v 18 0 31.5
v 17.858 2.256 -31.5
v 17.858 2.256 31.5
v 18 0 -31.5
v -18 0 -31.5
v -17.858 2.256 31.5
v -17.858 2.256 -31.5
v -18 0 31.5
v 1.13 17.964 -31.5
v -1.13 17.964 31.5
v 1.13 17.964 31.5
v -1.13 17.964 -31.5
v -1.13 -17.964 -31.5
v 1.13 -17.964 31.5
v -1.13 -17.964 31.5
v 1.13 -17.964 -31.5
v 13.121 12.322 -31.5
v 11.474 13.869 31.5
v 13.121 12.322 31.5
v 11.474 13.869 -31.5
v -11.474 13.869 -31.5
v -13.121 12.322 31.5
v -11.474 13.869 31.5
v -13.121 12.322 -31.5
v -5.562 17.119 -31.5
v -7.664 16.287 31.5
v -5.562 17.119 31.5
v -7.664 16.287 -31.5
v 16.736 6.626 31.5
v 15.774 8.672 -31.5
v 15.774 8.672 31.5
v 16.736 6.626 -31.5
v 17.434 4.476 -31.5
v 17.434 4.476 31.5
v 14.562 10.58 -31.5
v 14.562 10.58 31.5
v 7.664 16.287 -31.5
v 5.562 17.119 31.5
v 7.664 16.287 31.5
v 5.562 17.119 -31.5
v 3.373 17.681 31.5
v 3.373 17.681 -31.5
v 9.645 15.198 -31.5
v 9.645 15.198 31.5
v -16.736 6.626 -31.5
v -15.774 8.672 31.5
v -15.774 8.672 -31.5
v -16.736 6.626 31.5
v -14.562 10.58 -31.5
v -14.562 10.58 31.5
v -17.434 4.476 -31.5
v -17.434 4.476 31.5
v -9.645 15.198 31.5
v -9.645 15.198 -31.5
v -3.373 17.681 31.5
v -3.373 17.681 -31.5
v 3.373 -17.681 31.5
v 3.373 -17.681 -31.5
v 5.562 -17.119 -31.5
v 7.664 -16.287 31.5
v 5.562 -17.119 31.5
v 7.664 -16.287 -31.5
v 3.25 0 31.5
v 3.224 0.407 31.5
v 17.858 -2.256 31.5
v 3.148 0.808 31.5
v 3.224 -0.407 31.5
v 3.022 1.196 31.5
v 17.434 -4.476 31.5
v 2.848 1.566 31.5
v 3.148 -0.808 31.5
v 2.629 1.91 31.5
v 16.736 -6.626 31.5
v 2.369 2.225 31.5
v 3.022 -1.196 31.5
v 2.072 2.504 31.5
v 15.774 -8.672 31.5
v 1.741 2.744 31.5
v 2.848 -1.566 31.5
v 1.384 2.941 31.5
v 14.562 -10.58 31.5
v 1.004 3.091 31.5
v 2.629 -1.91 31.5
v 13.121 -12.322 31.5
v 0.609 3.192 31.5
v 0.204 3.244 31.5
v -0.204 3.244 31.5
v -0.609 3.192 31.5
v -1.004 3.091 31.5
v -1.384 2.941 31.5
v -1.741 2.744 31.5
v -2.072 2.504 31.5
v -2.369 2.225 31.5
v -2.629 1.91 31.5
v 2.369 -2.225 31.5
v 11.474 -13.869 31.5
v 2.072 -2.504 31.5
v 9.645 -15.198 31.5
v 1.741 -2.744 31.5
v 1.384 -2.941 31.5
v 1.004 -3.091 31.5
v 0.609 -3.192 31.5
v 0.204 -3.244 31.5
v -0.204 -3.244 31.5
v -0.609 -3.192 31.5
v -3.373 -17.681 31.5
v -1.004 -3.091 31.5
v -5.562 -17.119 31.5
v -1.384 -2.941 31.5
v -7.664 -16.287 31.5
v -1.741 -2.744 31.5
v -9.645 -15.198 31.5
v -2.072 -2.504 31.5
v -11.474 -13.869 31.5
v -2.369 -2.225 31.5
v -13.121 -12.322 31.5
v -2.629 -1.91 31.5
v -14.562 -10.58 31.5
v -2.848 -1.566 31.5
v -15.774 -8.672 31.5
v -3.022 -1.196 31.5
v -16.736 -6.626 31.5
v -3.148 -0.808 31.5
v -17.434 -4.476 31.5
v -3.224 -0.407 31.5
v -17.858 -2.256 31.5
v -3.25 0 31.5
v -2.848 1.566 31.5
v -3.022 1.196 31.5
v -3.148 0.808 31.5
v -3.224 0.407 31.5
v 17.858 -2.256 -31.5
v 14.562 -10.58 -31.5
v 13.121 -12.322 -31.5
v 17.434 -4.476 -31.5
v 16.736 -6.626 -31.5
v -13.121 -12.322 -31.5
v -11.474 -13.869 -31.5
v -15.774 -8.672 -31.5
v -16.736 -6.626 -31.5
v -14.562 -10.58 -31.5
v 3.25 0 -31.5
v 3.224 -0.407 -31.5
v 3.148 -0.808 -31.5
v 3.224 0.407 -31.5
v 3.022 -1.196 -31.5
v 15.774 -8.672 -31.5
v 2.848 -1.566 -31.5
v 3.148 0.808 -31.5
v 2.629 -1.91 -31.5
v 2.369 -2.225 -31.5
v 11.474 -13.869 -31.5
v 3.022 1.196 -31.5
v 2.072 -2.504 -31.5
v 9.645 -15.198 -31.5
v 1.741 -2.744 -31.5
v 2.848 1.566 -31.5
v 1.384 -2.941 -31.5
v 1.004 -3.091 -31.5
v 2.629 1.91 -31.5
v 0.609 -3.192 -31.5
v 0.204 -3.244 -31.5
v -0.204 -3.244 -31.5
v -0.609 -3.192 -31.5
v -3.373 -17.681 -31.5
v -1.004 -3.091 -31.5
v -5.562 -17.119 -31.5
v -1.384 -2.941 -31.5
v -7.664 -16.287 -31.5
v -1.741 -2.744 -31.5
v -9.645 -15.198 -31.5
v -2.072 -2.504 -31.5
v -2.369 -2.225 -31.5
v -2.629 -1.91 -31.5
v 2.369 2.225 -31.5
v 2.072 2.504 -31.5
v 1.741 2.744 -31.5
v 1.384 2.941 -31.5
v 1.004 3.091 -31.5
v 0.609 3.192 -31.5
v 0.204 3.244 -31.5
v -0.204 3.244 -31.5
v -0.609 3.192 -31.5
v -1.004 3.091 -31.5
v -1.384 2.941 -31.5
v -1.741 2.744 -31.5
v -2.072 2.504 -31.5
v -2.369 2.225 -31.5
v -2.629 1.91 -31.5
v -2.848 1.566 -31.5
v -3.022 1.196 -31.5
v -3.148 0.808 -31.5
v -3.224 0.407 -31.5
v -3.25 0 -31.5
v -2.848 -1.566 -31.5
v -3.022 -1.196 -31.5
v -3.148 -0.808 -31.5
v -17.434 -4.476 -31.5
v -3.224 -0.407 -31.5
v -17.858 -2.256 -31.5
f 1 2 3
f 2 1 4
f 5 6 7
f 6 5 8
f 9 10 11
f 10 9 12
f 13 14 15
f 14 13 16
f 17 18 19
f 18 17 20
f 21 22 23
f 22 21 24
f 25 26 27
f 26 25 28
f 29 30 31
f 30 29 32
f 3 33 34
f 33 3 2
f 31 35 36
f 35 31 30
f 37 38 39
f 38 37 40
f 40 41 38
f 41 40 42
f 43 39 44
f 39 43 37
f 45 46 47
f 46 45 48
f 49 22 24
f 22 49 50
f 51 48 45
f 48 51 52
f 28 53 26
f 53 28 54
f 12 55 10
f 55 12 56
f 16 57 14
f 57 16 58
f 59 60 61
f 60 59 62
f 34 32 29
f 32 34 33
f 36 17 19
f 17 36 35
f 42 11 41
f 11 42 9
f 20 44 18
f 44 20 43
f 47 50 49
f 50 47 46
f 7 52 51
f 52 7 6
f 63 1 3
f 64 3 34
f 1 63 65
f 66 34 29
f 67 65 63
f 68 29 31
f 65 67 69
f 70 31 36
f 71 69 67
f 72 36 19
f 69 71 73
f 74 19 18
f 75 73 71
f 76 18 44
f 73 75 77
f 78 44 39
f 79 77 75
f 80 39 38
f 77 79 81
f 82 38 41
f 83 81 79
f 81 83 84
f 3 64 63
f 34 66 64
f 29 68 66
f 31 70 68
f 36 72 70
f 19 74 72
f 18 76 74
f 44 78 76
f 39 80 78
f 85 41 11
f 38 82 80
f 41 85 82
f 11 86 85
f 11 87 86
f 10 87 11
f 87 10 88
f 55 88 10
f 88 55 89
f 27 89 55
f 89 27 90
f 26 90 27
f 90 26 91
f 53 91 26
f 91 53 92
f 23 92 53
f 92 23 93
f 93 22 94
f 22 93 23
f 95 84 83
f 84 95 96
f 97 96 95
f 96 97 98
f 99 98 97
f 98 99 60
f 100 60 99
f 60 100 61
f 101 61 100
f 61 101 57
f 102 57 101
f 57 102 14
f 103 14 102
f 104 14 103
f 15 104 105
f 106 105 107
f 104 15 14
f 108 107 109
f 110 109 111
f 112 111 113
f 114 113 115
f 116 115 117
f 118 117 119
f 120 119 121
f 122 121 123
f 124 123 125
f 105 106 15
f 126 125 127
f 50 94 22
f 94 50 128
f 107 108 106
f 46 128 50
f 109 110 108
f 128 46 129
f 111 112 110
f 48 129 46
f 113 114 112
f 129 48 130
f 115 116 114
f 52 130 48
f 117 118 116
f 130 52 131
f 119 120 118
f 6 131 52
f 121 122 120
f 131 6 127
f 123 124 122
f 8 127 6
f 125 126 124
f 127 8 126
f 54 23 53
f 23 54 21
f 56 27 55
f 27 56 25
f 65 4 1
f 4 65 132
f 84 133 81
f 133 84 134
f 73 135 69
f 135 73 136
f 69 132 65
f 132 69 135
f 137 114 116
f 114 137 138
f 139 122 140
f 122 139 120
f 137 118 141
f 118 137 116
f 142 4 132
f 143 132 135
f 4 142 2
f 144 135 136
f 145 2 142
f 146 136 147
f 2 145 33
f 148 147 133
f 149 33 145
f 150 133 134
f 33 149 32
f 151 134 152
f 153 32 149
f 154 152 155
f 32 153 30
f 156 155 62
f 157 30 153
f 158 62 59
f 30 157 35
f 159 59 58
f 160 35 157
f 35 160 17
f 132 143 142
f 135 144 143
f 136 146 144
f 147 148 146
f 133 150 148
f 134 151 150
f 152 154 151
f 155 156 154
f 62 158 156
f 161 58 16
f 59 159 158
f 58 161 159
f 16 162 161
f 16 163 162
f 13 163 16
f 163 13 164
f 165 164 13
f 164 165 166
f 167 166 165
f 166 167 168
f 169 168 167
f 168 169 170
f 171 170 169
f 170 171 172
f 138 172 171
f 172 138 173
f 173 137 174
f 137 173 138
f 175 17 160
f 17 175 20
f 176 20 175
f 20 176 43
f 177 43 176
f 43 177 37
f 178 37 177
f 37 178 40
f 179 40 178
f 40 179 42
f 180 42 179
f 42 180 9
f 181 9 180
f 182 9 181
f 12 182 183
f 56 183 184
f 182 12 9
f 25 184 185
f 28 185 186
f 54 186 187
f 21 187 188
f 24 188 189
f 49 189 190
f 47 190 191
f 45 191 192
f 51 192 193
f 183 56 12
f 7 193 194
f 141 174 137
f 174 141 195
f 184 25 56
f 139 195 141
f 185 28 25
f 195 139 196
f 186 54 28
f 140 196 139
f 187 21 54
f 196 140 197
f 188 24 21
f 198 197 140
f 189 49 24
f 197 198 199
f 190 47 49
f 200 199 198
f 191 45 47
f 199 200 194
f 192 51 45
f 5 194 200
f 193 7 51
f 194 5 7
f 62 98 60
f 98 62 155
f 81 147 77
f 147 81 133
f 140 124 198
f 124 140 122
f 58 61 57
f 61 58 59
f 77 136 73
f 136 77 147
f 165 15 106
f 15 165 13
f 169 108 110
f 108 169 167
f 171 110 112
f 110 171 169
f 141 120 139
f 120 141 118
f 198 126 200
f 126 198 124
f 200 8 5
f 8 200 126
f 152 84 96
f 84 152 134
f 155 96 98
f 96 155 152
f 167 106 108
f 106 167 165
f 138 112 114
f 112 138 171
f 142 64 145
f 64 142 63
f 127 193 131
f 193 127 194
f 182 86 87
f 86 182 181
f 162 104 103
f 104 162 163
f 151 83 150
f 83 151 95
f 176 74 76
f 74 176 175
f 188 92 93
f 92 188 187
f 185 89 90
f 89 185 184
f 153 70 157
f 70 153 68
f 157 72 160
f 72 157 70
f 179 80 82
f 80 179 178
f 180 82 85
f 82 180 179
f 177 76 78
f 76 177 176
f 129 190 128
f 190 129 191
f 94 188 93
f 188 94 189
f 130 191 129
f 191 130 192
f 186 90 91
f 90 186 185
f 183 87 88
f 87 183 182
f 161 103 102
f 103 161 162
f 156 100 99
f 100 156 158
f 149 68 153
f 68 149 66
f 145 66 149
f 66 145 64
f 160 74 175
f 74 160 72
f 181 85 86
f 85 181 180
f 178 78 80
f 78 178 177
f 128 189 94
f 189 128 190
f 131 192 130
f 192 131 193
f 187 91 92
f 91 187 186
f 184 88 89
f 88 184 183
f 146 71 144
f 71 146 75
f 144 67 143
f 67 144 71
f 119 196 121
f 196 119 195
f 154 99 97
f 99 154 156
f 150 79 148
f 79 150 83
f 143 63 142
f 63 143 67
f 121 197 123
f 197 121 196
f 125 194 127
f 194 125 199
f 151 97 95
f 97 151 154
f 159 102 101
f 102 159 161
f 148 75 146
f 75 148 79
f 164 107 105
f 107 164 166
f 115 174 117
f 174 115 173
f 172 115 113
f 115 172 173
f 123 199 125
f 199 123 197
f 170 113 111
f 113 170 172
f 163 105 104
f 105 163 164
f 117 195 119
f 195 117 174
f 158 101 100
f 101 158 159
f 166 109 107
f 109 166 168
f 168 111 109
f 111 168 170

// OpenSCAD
$fn = 50;


difference() {
	union() {
		translate(v = [0, 0, -31.5000000000]) {
			cylinder(h = 63, r = 18.0000000000);
		}
	}
	union() {
		translate(v = [0, 0, -100.0000000000]) {
			cylinder(h = 200, r = 3.2500000000);
		}
	}
}
